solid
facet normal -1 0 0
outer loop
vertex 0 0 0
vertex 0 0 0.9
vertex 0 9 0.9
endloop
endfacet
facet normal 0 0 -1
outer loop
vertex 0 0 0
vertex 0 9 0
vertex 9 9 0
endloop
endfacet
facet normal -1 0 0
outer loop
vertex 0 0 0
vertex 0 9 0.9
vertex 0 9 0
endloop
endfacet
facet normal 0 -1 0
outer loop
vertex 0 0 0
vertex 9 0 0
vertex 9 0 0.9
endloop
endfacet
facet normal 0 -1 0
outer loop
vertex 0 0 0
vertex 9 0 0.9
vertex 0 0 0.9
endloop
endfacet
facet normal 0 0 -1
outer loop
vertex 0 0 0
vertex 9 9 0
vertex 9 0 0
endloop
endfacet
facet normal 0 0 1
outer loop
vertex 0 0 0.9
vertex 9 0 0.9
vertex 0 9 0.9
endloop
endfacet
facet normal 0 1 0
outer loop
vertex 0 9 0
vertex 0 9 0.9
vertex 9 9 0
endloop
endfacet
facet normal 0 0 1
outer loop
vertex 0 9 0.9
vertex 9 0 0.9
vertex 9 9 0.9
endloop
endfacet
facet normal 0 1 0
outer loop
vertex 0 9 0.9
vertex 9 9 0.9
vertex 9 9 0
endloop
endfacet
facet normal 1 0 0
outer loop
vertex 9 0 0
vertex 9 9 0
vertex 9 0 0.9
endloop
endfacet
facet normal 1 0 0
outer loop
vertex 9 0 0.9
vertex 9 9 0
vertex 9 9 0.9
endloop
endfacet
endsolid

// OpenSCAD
/* Warning, this is a very basic generator with a lot of approximation 
input data : [QFN, NTX, 9x9x0.9mm, 64, , A, C04-00361A]
generated by com.zoubworld.electronics.cad.model3d.Basic
Date : Sun Feb 15 10:50:48 CET 2026
*/

//body
color("black")
translate([0,0,0])
cube([9.0,9.0,0.9], center=false);
